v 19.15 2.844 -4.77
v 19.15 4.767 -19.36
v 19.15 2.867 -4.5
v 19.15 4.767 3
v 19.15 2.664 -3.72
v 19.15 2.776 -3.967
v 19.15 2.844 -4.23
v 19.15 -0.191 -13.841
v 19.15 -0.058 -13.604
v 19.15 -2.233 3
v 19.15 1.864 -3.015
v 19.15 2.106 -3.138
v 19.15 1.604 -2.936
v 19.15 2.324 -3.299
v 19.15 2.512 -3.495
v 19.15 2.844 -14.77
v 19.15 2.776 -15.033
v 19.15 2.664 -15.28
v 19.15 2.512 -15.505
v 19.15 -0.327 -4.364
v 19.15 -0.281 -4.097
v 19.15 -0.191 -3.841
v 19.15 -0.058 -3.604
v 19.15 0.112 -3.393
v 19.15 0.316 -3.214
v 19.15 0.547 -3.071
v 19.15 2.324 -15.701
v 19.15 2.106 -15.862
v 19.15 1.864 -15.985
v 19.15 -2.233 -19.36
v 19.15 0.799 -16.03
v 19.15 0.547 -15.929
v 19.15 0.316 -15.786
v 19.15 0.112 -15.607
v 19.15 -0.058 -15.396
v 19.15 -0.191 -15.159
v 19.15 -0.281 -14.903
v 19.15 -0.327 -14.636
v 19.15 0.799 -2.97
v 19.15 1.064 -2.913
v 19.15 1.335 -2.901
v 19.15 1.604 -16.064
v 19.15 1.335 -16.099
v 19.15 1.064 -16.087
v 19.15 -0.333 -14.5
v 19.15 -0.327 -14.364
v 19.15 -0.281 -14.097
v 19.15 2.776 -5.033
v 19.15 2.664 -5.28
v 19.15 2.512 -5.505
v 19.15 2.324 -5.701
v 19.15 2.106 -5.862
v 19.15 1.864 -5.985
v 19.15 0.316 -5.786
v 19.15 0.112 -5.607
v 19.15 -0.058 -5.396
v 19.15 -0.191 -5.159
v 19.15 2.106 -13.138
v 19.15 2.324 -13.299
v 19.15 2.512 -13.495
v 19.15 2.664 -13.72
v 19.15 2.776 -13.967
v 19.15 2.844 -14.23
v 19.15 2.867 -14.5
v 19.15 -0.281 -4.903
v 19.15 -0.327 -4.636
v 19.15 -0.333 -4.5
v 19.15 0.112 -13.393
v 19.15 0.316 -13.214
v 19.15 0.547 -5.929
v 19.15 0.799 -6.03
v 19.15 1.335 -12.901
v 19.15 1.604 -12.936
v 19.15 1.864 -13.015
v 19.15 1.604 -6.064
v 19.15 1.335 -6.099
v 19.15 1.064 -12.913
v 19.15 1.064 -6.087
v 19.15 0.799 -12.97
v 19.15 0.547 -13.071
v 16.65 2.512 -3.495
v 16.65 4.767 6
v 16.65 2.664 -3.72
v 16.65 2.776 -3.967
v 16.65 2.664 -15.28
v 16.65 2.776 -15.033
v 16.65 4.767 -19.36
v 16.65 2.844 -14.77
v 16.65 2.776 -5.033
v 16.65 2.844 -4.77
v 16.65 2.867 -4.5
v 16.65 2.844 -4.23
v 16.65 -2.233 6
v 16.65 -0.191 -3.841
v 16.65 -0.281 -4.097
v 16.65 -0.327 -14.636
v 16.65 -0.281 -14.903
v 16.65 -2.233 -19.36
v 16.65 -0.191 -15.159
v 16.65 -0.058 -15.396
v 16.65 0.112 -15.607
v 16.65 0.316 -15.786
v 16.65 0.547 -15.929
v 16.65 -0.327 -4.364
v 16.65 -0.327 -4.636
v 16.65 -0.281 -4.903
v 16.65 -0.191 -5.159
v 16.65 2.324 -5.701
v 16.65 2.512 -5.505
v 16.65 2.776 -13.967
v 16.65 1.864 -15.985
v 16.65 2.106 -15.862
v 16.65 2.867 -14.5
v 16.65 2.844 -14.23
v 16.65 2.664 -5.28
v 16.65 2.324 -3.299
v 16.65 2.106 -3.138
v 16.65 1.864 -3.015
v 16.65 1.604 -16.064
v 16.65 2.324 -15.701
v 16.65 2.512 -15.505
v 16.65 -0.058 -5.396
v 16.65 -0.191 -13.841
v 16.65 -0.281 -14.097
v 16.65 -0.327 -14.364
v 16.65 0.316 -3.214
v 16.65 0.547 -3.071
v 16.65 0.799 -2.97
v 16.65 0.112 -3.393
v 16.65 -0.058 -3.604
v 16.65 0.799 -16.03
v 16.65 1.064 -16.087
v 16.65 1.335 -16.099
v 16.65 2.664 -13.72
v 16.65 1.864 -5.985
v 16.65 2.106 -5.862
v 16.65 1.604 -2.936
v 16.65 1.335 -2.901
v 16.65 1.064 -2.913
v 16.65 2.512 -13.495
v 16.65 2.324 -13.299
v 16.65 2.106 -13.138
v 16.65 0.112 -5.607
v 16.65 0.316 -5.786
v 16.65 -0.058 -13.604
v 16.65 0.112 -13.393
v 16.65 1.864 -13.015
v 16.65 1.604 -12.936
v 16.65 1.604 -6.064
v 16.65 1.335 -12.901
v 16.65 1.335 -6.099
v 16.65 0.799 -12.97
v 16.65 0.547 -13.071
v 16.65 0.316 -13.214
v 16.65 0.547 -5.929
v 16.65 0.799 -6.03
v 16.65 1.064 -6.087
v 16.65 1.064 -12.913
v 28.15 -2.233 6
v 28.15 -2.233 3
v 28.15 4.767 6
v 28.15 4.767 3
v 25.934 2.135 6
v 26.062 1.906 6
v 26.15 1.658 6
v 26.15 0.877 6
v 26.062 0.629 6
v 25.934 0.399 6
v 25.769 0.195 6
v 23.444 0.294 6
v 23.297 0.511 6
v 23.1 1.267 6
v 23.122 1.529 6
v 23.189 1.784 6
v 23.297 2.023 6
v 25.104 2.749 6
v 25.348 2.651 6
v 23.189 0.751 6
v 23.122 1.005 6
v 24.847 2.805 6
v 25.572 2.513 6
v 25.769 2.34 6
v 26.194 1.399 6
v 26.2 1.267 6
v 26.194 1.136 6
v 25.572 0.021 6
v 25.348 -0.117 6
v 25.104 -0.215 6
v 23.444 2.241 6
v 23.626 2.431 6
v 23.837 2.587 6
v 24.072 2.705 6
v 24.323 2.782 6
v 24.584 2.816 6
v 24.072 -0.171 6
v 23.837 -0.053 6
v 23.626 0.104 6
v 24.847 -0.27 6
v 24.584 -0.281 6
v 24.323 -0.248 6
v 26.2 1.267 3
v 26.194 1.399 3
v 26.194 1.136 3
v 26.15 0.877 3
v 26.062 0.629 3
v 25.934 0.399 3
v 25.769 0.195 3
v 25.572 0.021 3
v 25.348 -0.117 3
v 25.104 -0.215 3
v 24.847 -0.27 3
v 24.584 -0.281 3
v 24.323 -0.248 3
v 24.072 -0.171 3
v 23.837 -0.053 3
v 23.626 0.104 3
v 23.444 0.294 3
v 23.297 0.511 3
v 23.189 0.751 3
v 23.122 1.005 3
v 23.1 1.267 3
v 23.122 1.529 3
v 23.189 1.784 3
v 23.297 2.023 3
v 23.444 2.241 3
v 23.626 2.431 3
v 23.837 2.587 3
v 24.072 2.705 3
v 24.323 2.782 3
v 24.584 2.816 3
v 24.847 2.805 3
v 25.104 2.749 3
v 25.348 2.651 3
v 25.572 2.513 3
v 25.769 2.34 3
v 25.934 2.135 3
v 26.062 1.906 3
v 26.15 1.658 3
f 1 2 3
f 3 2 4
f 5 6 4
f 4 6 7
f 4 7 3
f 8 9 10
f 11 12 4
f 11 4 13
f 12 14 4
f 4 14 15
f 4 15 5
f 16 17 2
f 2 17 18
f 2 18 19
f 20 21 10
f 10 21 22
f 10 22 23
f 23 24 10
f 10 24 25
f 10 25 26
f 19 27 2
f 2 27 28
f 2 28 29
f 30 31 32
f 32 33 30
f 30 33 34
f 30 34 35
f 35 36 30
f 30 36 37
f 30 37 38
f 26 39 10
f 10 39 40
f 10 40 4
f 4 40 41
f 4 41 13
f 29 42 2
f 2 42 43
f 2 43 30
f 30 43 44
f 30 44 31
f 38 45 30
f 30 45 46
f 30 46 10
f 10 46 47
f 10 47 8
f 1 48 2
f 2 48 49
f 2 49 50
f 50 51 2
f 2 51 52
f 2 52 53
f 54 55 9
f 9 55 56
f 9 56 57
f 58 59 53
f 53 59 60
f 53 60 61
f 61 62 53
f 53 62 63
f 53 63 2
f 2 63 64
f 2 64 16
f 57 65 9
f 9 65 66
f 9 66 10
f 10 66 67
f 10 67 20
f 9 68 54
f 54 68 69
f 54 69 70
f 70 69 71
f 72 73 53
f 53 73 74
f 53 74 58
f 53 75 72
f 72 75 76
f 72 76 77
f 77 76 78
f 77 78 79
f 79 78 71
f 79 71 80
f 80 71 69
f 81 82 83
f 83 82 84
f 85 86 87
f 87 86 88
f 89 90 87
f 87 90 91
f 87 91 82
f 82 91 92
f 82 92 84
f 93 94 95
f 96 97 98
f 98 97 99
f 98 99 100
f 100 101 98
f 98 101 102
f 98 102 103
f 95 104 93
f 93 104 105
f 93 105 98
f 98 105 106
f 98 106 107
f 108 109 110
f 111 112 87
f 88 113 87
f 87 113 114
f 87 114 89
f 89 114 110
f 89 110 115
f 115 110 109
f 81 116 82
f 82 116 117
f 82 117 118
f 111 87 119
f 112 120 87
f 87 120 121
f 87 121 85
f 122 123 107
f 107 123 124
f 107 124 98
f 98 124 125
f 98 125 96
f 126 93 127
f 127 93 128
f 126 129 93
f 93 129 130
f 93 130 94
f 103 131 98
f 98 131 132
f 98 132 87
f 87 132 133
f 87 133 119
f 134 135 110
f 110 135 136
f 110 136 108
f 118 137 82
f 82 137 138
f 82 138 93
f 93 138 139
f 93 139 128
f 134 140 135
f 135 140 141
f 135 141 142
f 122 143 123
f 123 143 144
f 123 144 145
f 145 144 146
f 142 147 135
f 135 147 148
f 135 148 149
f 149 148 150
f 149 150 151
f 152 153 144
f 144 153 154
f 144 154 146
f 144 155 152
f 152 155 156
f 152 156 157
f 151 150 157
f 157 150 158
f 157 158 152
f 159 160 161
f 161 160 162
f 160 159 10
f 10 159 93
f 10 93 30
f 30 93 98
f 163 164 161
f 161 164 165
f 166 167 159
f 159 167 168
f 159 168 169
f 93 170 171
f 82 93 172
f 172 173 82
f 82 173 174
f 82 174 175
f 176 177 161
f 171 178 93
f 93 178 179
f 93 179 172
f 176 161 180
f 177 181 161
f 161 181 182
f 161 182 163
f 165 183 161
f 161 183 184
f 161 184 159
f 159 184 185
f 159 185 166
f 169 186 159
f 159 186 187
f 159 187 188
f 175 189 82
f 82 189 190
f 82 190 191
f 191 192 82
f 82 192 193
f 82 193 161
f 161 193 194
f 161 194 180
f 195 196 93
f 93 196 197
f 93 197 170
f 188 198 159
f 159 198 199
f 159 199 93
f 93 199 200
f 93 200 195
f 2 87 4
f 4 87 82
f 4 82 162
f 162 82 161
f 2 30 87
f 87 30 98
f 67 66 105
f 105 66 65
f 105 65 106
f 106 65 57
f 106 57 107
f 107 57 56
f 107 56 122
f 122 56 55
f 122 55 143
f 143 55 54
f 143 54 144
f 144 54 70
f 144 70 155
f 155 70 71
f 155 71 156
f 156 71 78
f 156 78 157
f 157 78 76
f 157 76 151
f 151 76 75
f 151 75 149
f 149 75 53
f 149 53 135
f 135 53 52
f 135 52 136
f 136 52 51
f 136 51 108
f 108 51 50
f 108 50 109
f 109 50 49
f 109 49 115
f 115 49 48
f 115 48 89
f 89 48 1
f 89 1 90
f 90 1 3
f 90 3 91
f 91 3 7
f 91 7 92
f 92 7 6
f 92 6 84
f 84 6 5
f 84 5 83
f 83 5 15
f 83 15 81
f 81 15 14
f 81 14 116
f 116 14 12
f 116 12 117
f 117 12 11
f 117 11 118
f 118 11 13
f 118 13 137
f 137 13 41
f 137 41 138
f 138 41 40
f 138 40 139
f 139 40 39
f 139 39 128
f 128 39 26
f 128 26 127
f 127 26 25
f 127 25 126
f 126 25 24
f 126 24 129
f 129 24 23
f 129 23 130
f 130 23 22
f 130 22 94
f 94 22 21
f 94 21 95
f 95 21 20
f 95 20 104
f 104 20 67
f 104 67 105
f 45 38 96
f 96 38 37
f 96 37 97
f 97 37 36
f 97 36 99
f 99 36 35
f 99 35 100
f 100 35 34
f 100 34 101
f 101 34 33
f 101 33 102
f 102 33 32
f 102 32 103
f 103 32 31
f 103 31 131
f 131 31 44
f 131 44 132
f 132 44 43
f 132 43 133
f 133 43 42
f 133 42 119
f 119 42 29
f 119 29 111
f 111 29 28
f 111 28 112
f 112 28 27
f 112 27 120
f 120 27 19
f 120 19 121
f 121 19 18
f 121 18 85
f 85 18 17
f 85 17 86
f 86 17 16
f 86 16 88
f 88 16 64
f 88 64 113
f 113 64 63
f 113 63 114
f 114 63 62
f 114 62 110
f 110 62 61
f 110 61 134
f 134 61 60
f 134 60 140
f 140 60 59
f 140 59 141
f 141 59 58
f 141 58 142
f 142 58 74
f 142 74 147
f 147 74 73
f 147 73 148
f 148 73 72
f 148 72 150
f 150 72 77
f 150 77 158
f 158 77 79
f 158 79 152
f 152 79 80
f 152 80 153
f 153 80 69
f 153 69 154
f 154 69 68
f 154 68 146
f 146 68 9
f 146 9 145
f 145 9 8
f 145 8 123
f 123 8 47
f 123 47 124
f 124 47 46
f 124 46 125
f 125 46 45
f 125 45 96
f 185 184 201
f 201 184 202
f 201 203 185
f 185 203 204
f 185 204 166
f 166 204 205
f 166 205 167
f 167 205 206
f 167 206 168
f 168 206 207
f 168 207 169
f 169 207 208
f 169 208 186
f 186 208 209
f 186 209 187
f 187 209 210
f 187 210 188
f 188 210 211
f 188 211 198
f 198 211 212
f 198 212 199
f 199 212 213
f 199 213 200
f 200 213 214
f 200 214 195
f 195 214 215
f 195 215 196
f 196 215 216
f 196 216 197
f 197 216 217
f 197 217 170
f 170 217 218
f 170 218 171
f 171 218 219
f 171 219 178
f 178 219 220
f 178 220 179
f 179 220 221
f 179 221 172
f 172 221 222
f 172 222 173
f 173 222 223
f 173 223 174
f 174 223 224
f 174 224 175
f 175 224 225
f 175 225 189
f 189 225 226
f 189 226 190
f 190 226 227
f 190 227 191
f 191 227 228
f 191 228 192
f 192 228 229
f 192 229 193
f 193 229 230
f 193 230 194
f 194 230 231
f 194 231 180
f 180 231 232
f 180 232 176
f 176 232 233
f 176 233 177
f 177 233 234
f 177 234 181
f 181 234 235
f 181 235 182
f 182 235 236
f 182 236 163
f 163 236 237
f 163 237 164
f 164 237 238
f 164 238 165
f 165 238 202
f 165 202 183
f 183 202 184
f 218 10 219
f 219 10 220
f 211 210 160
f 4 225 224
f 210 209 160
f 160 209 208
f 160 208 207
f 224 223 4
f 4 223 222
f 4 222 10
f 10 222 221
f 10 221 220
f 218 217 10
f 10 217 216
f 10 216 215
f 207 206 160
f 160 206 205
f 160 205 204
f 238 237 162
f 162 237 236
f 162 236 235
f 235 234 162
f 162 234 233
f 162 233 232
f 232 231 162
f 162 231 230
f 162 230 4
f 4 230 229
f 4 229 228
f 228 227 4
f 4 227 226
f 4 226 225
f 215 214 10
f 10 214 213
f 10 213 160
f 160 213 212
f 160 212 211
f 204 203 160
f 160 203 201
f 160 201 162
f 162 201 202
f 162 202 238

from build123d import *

# Parameters (mm, degrees)
SKETCH1_W           = 132
SKETCH1_H           = 160
BOSS_EXTRUDE1_DEPTH = 6
SKETCH3_W           = 32
SKETCH3_H           = 54
SKETCH3_W_2         = 26
SKETCH3_H_2         = 48
BOSS_EXTRUDE2_DEPTH = 17.5
SKETCH4_W           = 32
SKETCH4_H           = 54
BOSS_EXTRUDE3_DEPTH = 3
SKETCH5_W           = 25
SKETCH5_H           = 17
CUT_EXTRUDE1_DEPTH  = 3
SKETCH6_W           = 12
SKETCH6_H           = 54
BOSS_EXTRUDE4_DEPTH = 3
SKETCH7_R           = 1.6
CUT_EXTRUDE2_DEPTH  = 106.177231376
SKETCH8_W           = 3
SKETCH8_H           = 6.5
BOSS_EXTRUDE5_DEPTH = 20
SKETCH9_R           = 1.55
CUT_EXTRUDE3_DEPTH  = 6
SKETCH10_R          = 1.6
CUT_EXTRUDE4_DEPTH  = 108.043215572
SKETCH11_W          = 2.5
SKETCH11_H          = 7
BOSS_EXTRUDE6_DEPTH = 19.36
SKETCH12_R          = 1.6
CUT_EXTRUDE5_DEPTH  = 19.36
SKETCH13_W          = 3
SKETCH13_H          = 7
BOSS_EXTRUDE7_DEPTH = 15
SKETCH14_R          = 2
CUT_EXTRUDE6_DEPTH  = 15
CUT_EXTRUDE7_START  = -6
CUT_EXTRUDE7_DEPTH  = 6
SKETCH16_R          = 1.6
CUT_EXTRUDE8_DEPTH  = 15
SKETCH17_W          = 117.76
SKETCH17_H          = 77.767250212
CUT_EXTRUDE9_DEPTH  = 109
SKETCH18_R          = 1.55
CUT_EXTRUDE10_DEPTH = 109
SKETCH18_3_W        = 9
SKETCH18_3_H        = 7
CUT_EXTRUDE11_DEPTH = 3
SKETCH19_W          = 47.5
SKETCH19_H          = 6
CUT_EXTRUDE12_DEPTH = 80
SKETCH19_3_W        = 2.7
SKETCH19_3_H        = 6
CUT_EXTRUDE13_DEPTH = 80
SKETCH19_4_W        = 9
SKETCH19_4_H        = 3
CUT_EXTRUDE14_DEPTH = 80
SKETCH20_W          = 62.599740271
SKETCH20_H          = 63.599226712
CUT_EXTRUDE15_DEPTH = 80


# Read off the part's stored shape, not the designer's step: Cut-Extrude7
with BuildPart() as part:
    # Sketch1 → Boss-Extrude1 (new body)
    with BuildSketch(Plane.XY):
        Rectangle(SKETCH1_W, SKETCH1_H)
    extrude(amount=BOSS_EXTRUDE1_DEPTH)

    # Sketch3 → Boss-Extrude2 (add)
    with BuildSketch(Plane.XY.offset(6)):
        with Locations((0, -53)):
            Rectangle(SKETCH3_W, SKETCH3_H)
        with Locations((0, -53)):
            Rectangle(SKETCH3_W_2, SKETCH3_H_2, mode=Mode.SUBTRACT)
    extrude(amount=BOSS_EXTRUDE2_DEPTH)

    # Sketch4 → Boss-Extrude3 (add)
    with BuildSketch(Plane.XY.offset(23.5)):
        with Locations((0, -53)):
            Rectangle(SKETCH4_W, SKETCH4_H)
    extrude(amount=BOSS_EXTRUDE3_DEPTH)

    # Sketch5 → Cut-Extrude1 (cut)
    with BuildSketch(Plane.XZ.offset(80)):
        with Locations((0, 14.5)):
            Rectangle(SKETCH5_W, SKETCH5_H)
    extrude(amount=-CUT_EXTRUDE1_DEPTH, mode=Mode.SUBTRACT)

    # Sketch6 → Boss-Extrude4 (add)
    with BuildSketch(Plane.XY.offset(6)):
        with Locations((-22, -53)):
            Rectangle(SKETCH6_W, SKETCH6_H)
        with Locations((22, -53)):
            Rectangle(SKETCH6_W, SKETCH6_H)
    extrude(amount=BOSS_EXTRUDE4_DEPTH)

    # Sketch7 → Cut-Extrude2 (cut, through all)
    with BuildSketch(Plane.XY.offset(9)):
        with Locations((-22, -69)):
            Circle(SKETCH7_R)
        with Locations((-22, -33)):
            Circle(SKETCH7_R)
        with Locations(Location((22, -69, 0), (0, 0, 180))):
            Circle(SKETCH7_R)
        with Locations(Location((22, -33, 0), (0, 0, 180))):
            Circle(SKETCH7_R)
    extrude(amount=-CUT_EXTRUDE2_DEPTH, mode=Mode.SUBTRACT)

    # Sketch8 → Boss-Extrude5 (add)
    with BuildSketch(Plane.XY.offset(6)):
        with Locations((-54.38, -76.75)):
            Rectangle(SKETCH8_W, SKETCH8_H)
        with Locations((-54.38, -30.25)):
            Rectangle(SKETCH8_W, SKETCH8_H)
    boss_extrude5 = extrude(amount=BOSS_EXTRUDE5_DEPTH)

    # Sketch9 → Cut-Extrude3 (cut)
    with BuildSketch(Plane.ZY.offset(55.88)):
        with Locations((10.35, -76.75)):
            Circle(SKETCH9_R)
        with Locations((19.65, -76.75)):
            Circle(SKETCH9_R)
        with Locations((10.35, -30.25)):
            Circle(SKETCH9_R)
        with Locations((19.65, -30.25)):
            Circle(SKETCH9_R)
    cut_extrude3 = extrude(amount=-CUT_EXTRUDE3_DEPTH, mode=Mode.SUBTRACT)

    # Mirror1: Boss-Extrude5, Cut-Extrude3 across plane
    add(boss_extrude5.mirror(Plane(origin=(0, 0, 0), x_dir=(0, 0, 1), z_dir=(1, 0, 0))))
    add(cut_extrude3.mirror(Plane(origin=(0, 0, 0), x_dir=(0, 0, 1), z_dir=(1, 0, 0))), mode=Mode.SUBTRACT)

    # Sketch10 → Cut-Extrude4 (cut, through all)
    with BuildSketch(Plane(origin=(0, 0, 0), x_dir=(-1, 0, 0), z_dir=(0, 0, -1))):
        with Locations((-24.1, -75.572749788)):
            Circle(SKETCH10_R)
        with Locations((-21.15, -12.732749788)):
            Circle(SKETCH10_R)
        with Locations(Location((21.15, -12.732749788, 0), (0, 0, 180))):
            Circle(SKETCH10_R)
        with Locations((24.1, -75.572749788)):
            Circle(SKETCH10_R)
    extrude(amount=-CUT_EXTRUDE4_DEPTH, mode=Mode.SUBTRACT)

    # Sketch11 → Boss-Extrude6 (add)
    with BuildSketch(Plane(origin=(0, 0, 0), x_dir=(-1, 0, 0), z_dir=(0, 0, -1))):
        with Locations((-17.9, 1.267250212)):
            Rectangle(SKETCH11_W, SKETCH11_H)
        with Locations((-17.9, 50.267250212)):
            Rectangle(SKETCH11_W, SKETCH11_H)
    extrude(amount=BOSS_EXTRUDE6_DEPTH)

    # Sketch12 → Cut-Extrude5 (cut)
    with BuildSketch(Plane(origin=(19.15, 0, 0), x_dir=(0, 0, -1), z_dir=(1, 0, 0))):
        with Locations(Location((4.5, 50.267250212, 0), (0, 0, 90))):
            Circle(SKETCH12_R)
        with Locations(Location((14.5, 50.267250212, 0), (0, 0, 90))):
            Circle(SKETCH12_R)
        with Locations(Location((4.5, 1.267250212, 0), (0, 0, 90))):
            Circle(SKETCH12_R)
        with Locations(Location((14.5, 1.267250212, 0), (0, 0, 90))):
            Circle(SKETCH12_R)
    extrude(amount=-CUT_EXTRUDE5_DEPTH, mode=Mode.SUBTRACT)

    # Sketch13 → Boss-Extrude7 (add)
    with BuildSketch(Plane(origin=(0, 0, 0), x_dir=(-1, 0, 0), z_dir=(0, 0, -1))):
        with Locations((29.35, 35.967250212)):
            Rectangle(SKETCH13_W, SKETCH13_H)
    extrude(amount=BOSS_EXTRUDE7_DEPTH)

    # Sketch14 → Cut-Extrude6 (cut)
    with BuildSketch(Plane.ZY.offset(30.85)):
        with Locations((-9.9, 35.967250212)):
            Circle(SKETCH14_R)
    extrude(amount=-CUT_EXTRUDE6_DEPTH, mode=Mode.SUBTRACT)

    # Cut-Extrude7 outline → Cut-Extrude7 (cut)
    with BuildSketch(Plane(origin=(0, 0, 0), x_dir=(-1, 0, 0), z_dir=(0, 0, -1)).offset(CUT_EXTRUDE7_START)):
        Polygon((-30.85, 56.767250212), (30.85, 56.767250212), (30.85, -24), (58.88, -24), (58.88, -80), (66, -80), (66, 80), (-66, 80), (-66, -80), (-58.88, -80), (-58.88, -24), (-30.85, -24), align=None)
    extrude(amount=CUT_EXTRUDE7_DEPTH, mode=Mode.SUBTRACT)

    # Sketch16 → Cut-Extrude8 (cut)
    with BuildSketch(Plane(origin=(0, 0, 0), x_dir=(-1, 0, 0), z_dir=(0, 0, -1))):
        Circle(SKETCH16_R)
        with Locations((0, 52.767250212)):
            Circle(SKETCH16_R)
    extrude(amount=-CUT_EXTRUDE8_DEPTH, mode=Mode.SUBTRACT)

    # Sketch17 → Cut-Extrude9 (cut)
    with BuildSketch(Plane(origin=(0, 0, 0), x_dir=(-1, 0, 0), z_dir=(0, 0, -1))):
        with Locations((0, -41.116374894)):
            Rectangle(SKETCH17_W, SKETCH17_H)
    extrude(amount=-CUT_EXTRUDE9_DEPTH, mode=Mode.SUBTRACT)

    # Sketch18 → Cut-Extrude10 (cut)
    with BuildSketch(Plane(origin=(0, 0, 0), x_dir=(-1, 0, 0), z_dir=(0, 0, -1))):
        with Locations((-24.65, 1.267250212)):
            Circle(SKETCH18_R)
    extrude(amount=-CUT_EXTRUDE10_DEPTH, mode=Mode.SUBTRACT)

    # Sketch18<3> → Cut-Extrude11 (cut)
    with BuildSketch(Plane(origin=(0, 0, 0), x_dir=(-1, 0, 0), z_dir=(0, 0, -1))):
        with Locations((-23.65, 1.267250212)):
            Rectangle(SKETCH18_3_W, SKETCH18_3_H)
    extrude(amount=-CUT_EXTRUDE11_DEPTH, mode=Mode.SUBTRACT)

    # Sketch19 → Cut-Extrude12 (cut)
    with BuildSketch(Plane.XZ.offset(2.232749788)):
        with Locations((-7.1, 3)):
            Rectangle(SKETCH19_W, SKETCH19_H)
    extrude(amount=-CUT_EXTRUDE12_DEPTH, mode=Mode.SUBTRACT)


with BuildPart() as body_2:
    # of the pieces the cut leaves, the one that is kept (cut_extrude12_keep)
    add(part.part.solids().sort_by_distance((30.85, -2.232749788, 0))[0])

    # Sketch19<3> → Cut-Extrude13 (cut)
    with BuildSketch(Plane.XZ.offset(2.232749788)):
        with Locations((29.5, 3)):
            Rectangle(SKETCH19_3_W, SKETCH19_3_H)
    extrude(amount=-CUT_EXTRUDE13_DEPTH, mode=Mode.SUBTRACT)

    # Sketch19<4> → Cut-Extrude14 (cut)
    with BuildSketch(Plane.XZ.offset(2.232749788)):
        with Locations((23.65, 1.5)):
            Rectangle(SKETCH19_4_W, SKETCH19_4_H)
    extrude(amount=-CUT_EXTRUDE14_DEPTH, mode=Mode.SUBTRACT)

    # Sketch20 → Cut-Extrude15 (cut)
    with BuildSketch(Plane(origin=(0, 0, 0), x_dir=(-1, 0, 0), z_dir=(0, 0, -1))):
        with Locations((-47.949870136, 36.566863568)):
            Rectangle(SKETCH20_W, SKETCH20_H)
    extrude(amount=-CUT_EXTRUDE15_DEPTH, mode=Mode.SUBTRACT)


with BuildPart() as body_2_2:
    # of the pieces the cut leaves, the one that is kept (cut_extrude15_keep)
    add(body_2.part.solids().sort_by_distance((16.65, -2.232749788, -19.36))[0])


solid = body_2_2.part
